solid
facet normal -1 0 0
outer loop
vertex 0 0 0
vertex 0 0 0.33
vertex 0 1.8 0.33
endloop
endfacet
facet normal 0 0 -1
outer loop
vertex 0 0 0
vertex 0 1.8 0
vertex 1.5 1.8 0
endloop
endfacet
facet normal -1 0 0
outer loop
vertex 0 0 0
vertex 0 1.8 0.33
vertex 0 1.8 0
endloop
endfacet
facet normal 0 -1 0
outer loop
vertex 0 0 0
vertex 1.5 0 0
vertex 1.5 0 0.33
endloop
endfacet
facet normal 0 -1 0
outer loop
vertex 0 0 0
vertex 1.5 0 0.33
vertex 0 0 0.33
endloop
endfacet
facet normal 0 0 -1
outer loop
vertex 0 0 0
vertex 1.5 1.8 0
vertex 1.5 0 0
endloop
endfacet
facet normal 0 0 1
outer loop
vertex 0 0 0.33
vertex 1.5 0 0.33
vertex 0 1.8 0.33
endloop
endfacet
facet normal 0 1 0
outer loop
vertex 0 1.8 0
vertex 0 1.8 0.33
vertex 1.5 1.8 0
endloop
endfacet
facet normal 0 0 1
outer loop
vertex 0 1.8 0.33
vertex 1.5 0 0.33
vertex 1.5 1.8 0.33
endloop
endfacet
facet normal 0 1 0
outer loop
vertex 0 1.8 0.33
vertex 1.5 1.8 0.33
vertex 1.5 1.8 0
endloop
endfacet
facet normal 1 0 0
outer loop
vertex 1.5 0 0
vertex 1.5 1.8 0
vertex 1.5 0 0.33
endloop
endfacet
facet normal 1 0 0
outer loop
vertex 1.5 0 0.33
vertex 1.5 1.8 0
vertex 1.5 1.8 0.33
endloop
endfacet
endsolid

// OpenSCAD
/* Warning, this is a very basic generator with a lot of approximation 
input data : [X2DFN, 4AX, 1.5x1.8x0.33mm, 6, , A, C04-00441A]
generated by com.zoubworld.electronics.cad.model3d.Basic
Date : Sun Feb 15 10:50:48 CET 2026
*/

//body
color("black")
translate([0,0,0])
cube([1.5,1.8,0.33], center=false);
